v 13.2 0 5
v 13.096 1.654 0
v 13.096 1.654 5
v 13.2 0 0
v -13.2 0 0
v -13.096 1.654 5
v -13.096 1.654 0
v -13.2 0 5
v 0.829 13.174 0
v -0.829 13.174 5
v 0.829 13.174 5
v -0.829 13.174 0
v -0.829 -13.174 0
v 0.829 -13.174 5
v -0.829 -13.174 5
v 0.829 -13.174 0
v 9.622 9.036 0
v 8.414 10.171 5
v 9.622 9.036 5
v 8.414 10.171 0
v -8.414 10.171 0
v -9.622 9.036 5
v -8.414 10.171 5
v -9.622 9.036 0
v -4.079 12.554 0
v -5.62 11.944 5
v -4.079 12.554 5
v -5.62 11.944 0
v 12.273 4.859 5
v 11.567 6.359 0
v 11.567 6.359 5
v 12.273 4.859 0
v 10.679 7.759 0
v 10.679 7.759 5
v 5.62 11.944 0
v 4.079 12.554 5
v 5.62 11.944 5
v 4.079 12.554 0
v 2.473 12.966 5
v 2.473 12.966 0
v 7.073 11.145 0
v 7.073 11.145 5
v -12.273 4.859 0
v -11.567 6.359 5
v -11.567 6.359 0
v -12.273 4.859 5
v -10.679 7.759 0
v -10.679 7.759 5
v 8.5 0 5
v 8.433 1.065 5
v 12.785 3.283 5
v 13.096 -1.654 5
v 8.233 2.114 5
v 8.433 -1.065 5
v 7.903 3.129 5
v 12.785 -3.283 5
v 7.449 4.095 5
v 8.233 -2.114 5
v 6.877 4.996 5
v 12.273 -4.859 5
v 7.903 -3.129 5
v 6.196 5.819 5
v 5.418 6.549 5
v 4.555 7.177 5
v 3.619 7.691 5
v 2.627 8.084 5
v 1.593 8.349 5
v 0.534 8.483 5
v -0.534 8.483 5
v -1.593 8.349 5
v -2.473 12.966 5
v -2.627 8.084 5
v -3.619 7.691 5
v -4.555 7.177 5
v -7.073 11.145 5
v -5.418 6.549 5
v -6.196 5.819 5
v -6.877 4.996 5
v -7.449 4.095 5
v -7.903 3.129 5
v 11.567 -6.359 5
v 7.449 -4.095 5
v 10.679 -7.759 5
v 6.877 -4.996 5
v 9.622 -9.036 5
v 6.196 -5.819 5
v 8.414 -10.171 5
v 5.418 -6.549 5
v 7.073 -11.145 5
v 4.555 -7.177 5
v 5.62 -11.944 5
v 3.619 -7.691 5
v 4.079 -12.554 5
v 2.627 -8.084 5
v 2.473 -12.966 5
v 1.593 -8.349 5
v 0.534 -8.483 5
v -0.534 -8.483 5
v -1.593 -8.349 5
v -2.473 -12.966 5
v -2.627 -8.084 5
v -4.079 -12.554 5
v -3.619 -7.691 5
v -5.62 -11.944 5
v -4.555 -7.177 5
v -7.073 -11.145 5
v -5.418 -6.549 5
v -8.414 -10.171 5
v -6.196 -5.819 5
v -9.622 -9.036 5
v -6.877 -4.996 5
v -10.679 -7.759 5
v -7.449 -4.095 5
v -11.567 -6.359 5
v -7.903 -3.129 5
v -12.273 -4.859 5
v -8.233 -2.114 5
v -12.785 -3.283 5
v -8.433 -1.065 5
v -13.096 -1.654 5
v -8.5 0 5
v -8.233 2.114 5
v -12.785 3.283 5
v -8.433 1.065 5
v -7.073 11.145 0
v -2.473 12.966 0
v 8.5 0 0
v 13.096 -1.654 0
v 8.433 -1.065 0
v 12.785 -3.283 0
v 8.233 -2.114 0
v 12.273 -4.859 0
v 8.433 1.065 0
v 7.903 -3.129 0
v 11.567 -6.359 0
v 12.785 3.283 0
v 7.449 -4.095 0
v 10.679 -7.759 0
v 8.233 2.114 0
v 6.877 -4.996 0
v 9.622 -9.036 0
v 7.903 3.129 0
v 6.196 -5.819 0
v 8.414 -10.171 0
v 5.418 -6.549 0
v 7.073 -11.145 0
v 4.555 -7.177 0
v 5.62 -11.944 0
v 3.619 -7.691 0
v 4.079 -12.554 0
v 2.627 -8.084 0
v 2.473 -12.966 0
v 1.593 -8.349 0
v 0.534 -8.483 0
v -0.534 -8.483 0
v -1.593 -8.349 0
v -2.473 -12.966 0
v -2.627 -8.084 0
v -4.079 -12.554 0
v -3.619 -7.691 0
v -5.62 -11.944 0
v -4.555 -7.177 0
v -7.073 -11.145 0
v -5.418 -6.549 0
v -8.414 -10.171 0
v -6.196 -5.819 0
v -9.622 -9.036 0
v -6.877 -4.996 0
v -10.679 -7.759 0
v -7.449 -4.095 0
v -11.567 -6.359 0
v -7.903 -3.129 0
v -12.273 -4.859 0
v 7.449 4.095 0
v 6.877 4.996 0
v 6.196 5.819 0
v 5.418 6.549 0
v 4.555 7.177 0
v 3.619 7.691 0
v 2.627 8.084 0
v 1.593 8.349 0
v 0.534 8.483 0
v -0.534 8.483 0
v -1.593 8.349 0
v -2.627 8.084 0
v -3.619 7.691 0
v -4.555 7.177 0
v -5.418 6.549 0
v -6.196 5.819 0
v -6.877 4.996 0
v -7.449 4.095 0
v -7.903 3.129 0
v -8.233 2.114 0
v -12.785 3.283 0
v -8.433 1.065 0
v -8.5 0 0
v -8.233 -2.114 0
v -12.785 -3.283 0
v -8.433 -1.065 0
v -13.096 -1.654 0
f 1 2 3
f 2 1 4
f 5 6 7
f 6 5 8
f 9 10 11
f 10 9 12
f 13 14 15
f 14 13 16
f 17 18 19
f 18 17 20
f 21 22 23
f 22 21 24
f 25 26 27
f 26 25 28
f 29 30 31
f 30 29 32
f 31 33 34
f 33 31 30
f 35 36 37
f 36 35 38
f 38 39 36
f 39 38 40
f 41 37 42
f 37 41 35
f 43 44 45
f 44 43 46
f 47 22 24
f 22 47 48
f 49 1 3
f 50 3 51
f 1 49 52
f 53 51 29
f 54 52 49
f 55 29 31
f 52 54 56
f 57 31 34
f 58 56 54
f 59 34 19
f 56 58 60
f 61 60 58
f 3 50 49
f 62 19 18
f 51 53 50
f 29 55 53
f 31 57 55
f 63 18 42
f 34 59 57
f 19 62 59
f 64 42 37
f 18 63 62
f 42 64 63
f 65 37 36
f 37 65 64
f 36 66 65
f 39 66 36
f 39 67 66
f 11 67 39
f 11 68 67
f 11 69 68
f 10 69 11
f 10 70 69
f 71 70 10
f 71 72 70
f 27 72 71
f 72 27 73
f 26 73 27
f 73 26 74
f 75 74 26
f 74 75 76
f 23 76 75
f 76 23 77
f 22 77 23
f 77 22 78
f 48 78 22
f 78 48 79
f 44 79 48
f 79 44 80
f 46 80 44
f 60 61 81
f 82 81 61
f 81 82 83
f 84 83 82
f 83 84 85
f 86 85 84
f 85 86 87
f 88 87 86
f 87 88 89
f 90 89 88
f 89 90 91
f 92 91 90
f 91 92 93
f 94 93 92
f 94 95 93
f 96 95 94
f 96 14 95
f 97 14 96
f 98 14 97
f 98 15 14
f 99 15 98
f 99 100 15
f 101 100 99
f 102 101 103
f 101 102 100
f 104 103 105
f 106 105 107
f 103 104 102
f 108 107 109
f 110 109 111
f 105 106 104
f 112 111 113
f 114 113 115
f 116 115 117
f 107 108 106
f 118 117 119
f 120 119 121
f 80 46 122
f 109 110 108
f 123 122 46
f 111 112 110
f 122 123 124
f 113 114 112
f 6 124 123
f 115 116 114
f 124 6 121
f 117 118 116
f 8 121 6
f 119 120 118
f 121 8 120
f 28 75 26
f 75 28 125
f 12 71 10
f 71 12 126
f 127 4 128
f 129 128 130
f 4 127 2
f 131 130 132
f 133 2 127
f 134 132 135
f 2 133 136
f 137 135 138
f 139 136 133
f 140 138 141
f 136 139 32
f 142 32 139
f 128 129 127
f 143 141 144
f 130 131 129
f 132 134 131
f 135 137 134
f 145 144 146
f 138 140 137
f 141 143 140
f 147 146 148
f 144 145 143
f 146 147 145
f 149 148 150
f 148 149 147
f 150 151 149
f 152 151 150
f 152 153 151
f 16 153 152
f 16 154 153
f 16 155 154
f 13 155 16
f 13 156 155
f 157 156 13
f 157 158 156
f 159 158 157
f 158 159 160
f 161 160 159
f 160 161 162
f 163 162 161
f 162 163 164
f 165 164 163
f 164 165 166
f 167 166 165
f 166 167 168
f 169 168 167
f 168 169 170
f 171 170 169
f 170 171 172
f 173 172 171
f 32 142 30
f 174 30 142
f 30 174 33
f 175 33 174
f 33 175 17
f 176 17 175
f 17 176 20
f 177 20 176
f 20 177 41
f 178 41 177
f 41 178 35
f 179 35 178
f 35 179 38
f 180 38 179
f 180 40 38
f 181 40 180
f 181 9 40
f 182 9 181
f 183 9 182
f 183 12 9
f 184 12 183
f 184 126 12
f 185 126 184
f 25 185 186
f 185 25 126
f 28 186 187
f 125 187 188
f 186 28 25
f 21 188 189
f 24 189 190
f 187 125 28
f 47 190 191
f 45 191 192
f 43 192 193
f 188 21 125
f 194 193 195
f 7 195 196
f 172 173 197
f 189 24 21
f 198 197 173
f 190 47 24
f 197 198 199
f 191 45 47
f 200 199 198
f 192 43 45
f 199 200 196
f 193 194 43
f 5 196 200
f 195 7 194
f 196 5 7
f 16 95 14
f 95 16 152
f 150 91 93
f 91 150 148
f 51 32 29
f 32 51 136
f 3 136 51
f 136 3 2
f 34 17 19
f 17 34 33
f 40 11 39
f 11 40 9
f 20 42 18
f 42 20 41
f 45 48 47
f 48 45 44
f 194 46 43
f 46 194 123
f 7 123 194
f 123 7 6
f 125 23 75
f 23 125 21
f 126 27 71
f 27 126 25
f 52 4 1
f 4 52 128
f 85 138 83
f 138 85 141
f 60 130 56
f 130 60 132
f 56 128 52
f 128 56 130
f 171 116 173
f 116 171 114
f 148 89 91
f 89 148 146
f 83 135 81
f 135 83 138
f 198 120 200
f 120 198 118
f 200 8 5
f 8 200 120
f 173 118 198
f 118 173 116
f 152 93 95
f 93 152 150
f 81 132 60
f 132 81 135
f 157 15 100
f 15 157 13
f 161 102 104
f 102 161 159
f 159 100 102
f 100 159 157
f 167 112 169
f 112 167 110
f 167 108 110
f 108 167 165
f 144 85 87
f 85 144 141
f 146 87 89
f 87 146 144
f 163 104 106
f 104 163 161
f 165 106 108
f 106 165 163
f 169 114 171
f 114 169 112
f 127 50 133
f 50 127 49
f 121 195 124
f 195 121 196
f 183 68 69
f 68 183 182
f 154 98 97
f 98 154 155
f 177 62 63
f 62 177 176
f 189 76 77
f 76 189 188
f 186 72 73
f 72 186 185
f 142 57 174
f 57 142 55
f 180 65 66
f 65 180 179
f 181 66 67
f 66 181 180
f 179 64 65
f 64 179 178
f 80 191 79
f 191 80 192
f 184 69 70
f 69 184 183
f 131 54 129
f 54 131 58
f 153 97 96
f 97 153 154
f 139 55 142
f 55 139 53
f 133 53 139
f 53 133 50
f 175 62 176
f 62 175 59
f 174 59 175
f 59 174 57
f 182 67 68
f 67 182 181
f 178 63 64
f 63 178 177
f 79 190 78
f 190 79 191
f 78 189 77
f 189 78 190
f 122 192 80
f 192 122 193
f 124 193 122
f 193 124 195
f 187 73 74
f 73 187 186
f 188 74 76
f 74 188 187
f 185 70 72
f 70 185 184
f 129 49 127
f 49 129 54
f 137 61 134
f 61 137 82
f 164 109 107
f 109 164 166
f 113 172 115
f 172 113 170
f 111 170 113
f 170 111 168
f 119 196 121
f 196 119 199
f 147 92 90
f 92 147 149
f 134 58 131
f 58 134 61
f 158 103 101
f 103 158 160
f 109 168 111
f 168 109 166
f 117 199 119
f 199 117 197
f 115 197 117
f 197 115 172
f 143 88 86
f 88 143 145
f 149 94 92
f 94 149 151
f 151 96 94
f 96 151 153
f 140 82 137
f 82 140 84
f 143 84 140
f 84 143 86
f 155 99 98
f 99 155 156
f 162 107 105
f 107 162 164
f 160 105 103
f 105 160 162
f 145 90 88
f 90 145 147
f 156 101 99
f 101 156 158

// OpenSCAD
$fn = 50;


difference() {
	union() {
		translate(v = [0, 0, 0]) {
			rotate(a = [0, 0, 0]) {
				cylinder(h = 5, r = 13.2000000000);
			}
		}
	}
	union() {
		translate(v = [0, 0, 0]) {
			rotate(a = [0, 0, 0]) {
				cylinder(h = 5, r = 8.5000000000);
			}
		}
	}
}
